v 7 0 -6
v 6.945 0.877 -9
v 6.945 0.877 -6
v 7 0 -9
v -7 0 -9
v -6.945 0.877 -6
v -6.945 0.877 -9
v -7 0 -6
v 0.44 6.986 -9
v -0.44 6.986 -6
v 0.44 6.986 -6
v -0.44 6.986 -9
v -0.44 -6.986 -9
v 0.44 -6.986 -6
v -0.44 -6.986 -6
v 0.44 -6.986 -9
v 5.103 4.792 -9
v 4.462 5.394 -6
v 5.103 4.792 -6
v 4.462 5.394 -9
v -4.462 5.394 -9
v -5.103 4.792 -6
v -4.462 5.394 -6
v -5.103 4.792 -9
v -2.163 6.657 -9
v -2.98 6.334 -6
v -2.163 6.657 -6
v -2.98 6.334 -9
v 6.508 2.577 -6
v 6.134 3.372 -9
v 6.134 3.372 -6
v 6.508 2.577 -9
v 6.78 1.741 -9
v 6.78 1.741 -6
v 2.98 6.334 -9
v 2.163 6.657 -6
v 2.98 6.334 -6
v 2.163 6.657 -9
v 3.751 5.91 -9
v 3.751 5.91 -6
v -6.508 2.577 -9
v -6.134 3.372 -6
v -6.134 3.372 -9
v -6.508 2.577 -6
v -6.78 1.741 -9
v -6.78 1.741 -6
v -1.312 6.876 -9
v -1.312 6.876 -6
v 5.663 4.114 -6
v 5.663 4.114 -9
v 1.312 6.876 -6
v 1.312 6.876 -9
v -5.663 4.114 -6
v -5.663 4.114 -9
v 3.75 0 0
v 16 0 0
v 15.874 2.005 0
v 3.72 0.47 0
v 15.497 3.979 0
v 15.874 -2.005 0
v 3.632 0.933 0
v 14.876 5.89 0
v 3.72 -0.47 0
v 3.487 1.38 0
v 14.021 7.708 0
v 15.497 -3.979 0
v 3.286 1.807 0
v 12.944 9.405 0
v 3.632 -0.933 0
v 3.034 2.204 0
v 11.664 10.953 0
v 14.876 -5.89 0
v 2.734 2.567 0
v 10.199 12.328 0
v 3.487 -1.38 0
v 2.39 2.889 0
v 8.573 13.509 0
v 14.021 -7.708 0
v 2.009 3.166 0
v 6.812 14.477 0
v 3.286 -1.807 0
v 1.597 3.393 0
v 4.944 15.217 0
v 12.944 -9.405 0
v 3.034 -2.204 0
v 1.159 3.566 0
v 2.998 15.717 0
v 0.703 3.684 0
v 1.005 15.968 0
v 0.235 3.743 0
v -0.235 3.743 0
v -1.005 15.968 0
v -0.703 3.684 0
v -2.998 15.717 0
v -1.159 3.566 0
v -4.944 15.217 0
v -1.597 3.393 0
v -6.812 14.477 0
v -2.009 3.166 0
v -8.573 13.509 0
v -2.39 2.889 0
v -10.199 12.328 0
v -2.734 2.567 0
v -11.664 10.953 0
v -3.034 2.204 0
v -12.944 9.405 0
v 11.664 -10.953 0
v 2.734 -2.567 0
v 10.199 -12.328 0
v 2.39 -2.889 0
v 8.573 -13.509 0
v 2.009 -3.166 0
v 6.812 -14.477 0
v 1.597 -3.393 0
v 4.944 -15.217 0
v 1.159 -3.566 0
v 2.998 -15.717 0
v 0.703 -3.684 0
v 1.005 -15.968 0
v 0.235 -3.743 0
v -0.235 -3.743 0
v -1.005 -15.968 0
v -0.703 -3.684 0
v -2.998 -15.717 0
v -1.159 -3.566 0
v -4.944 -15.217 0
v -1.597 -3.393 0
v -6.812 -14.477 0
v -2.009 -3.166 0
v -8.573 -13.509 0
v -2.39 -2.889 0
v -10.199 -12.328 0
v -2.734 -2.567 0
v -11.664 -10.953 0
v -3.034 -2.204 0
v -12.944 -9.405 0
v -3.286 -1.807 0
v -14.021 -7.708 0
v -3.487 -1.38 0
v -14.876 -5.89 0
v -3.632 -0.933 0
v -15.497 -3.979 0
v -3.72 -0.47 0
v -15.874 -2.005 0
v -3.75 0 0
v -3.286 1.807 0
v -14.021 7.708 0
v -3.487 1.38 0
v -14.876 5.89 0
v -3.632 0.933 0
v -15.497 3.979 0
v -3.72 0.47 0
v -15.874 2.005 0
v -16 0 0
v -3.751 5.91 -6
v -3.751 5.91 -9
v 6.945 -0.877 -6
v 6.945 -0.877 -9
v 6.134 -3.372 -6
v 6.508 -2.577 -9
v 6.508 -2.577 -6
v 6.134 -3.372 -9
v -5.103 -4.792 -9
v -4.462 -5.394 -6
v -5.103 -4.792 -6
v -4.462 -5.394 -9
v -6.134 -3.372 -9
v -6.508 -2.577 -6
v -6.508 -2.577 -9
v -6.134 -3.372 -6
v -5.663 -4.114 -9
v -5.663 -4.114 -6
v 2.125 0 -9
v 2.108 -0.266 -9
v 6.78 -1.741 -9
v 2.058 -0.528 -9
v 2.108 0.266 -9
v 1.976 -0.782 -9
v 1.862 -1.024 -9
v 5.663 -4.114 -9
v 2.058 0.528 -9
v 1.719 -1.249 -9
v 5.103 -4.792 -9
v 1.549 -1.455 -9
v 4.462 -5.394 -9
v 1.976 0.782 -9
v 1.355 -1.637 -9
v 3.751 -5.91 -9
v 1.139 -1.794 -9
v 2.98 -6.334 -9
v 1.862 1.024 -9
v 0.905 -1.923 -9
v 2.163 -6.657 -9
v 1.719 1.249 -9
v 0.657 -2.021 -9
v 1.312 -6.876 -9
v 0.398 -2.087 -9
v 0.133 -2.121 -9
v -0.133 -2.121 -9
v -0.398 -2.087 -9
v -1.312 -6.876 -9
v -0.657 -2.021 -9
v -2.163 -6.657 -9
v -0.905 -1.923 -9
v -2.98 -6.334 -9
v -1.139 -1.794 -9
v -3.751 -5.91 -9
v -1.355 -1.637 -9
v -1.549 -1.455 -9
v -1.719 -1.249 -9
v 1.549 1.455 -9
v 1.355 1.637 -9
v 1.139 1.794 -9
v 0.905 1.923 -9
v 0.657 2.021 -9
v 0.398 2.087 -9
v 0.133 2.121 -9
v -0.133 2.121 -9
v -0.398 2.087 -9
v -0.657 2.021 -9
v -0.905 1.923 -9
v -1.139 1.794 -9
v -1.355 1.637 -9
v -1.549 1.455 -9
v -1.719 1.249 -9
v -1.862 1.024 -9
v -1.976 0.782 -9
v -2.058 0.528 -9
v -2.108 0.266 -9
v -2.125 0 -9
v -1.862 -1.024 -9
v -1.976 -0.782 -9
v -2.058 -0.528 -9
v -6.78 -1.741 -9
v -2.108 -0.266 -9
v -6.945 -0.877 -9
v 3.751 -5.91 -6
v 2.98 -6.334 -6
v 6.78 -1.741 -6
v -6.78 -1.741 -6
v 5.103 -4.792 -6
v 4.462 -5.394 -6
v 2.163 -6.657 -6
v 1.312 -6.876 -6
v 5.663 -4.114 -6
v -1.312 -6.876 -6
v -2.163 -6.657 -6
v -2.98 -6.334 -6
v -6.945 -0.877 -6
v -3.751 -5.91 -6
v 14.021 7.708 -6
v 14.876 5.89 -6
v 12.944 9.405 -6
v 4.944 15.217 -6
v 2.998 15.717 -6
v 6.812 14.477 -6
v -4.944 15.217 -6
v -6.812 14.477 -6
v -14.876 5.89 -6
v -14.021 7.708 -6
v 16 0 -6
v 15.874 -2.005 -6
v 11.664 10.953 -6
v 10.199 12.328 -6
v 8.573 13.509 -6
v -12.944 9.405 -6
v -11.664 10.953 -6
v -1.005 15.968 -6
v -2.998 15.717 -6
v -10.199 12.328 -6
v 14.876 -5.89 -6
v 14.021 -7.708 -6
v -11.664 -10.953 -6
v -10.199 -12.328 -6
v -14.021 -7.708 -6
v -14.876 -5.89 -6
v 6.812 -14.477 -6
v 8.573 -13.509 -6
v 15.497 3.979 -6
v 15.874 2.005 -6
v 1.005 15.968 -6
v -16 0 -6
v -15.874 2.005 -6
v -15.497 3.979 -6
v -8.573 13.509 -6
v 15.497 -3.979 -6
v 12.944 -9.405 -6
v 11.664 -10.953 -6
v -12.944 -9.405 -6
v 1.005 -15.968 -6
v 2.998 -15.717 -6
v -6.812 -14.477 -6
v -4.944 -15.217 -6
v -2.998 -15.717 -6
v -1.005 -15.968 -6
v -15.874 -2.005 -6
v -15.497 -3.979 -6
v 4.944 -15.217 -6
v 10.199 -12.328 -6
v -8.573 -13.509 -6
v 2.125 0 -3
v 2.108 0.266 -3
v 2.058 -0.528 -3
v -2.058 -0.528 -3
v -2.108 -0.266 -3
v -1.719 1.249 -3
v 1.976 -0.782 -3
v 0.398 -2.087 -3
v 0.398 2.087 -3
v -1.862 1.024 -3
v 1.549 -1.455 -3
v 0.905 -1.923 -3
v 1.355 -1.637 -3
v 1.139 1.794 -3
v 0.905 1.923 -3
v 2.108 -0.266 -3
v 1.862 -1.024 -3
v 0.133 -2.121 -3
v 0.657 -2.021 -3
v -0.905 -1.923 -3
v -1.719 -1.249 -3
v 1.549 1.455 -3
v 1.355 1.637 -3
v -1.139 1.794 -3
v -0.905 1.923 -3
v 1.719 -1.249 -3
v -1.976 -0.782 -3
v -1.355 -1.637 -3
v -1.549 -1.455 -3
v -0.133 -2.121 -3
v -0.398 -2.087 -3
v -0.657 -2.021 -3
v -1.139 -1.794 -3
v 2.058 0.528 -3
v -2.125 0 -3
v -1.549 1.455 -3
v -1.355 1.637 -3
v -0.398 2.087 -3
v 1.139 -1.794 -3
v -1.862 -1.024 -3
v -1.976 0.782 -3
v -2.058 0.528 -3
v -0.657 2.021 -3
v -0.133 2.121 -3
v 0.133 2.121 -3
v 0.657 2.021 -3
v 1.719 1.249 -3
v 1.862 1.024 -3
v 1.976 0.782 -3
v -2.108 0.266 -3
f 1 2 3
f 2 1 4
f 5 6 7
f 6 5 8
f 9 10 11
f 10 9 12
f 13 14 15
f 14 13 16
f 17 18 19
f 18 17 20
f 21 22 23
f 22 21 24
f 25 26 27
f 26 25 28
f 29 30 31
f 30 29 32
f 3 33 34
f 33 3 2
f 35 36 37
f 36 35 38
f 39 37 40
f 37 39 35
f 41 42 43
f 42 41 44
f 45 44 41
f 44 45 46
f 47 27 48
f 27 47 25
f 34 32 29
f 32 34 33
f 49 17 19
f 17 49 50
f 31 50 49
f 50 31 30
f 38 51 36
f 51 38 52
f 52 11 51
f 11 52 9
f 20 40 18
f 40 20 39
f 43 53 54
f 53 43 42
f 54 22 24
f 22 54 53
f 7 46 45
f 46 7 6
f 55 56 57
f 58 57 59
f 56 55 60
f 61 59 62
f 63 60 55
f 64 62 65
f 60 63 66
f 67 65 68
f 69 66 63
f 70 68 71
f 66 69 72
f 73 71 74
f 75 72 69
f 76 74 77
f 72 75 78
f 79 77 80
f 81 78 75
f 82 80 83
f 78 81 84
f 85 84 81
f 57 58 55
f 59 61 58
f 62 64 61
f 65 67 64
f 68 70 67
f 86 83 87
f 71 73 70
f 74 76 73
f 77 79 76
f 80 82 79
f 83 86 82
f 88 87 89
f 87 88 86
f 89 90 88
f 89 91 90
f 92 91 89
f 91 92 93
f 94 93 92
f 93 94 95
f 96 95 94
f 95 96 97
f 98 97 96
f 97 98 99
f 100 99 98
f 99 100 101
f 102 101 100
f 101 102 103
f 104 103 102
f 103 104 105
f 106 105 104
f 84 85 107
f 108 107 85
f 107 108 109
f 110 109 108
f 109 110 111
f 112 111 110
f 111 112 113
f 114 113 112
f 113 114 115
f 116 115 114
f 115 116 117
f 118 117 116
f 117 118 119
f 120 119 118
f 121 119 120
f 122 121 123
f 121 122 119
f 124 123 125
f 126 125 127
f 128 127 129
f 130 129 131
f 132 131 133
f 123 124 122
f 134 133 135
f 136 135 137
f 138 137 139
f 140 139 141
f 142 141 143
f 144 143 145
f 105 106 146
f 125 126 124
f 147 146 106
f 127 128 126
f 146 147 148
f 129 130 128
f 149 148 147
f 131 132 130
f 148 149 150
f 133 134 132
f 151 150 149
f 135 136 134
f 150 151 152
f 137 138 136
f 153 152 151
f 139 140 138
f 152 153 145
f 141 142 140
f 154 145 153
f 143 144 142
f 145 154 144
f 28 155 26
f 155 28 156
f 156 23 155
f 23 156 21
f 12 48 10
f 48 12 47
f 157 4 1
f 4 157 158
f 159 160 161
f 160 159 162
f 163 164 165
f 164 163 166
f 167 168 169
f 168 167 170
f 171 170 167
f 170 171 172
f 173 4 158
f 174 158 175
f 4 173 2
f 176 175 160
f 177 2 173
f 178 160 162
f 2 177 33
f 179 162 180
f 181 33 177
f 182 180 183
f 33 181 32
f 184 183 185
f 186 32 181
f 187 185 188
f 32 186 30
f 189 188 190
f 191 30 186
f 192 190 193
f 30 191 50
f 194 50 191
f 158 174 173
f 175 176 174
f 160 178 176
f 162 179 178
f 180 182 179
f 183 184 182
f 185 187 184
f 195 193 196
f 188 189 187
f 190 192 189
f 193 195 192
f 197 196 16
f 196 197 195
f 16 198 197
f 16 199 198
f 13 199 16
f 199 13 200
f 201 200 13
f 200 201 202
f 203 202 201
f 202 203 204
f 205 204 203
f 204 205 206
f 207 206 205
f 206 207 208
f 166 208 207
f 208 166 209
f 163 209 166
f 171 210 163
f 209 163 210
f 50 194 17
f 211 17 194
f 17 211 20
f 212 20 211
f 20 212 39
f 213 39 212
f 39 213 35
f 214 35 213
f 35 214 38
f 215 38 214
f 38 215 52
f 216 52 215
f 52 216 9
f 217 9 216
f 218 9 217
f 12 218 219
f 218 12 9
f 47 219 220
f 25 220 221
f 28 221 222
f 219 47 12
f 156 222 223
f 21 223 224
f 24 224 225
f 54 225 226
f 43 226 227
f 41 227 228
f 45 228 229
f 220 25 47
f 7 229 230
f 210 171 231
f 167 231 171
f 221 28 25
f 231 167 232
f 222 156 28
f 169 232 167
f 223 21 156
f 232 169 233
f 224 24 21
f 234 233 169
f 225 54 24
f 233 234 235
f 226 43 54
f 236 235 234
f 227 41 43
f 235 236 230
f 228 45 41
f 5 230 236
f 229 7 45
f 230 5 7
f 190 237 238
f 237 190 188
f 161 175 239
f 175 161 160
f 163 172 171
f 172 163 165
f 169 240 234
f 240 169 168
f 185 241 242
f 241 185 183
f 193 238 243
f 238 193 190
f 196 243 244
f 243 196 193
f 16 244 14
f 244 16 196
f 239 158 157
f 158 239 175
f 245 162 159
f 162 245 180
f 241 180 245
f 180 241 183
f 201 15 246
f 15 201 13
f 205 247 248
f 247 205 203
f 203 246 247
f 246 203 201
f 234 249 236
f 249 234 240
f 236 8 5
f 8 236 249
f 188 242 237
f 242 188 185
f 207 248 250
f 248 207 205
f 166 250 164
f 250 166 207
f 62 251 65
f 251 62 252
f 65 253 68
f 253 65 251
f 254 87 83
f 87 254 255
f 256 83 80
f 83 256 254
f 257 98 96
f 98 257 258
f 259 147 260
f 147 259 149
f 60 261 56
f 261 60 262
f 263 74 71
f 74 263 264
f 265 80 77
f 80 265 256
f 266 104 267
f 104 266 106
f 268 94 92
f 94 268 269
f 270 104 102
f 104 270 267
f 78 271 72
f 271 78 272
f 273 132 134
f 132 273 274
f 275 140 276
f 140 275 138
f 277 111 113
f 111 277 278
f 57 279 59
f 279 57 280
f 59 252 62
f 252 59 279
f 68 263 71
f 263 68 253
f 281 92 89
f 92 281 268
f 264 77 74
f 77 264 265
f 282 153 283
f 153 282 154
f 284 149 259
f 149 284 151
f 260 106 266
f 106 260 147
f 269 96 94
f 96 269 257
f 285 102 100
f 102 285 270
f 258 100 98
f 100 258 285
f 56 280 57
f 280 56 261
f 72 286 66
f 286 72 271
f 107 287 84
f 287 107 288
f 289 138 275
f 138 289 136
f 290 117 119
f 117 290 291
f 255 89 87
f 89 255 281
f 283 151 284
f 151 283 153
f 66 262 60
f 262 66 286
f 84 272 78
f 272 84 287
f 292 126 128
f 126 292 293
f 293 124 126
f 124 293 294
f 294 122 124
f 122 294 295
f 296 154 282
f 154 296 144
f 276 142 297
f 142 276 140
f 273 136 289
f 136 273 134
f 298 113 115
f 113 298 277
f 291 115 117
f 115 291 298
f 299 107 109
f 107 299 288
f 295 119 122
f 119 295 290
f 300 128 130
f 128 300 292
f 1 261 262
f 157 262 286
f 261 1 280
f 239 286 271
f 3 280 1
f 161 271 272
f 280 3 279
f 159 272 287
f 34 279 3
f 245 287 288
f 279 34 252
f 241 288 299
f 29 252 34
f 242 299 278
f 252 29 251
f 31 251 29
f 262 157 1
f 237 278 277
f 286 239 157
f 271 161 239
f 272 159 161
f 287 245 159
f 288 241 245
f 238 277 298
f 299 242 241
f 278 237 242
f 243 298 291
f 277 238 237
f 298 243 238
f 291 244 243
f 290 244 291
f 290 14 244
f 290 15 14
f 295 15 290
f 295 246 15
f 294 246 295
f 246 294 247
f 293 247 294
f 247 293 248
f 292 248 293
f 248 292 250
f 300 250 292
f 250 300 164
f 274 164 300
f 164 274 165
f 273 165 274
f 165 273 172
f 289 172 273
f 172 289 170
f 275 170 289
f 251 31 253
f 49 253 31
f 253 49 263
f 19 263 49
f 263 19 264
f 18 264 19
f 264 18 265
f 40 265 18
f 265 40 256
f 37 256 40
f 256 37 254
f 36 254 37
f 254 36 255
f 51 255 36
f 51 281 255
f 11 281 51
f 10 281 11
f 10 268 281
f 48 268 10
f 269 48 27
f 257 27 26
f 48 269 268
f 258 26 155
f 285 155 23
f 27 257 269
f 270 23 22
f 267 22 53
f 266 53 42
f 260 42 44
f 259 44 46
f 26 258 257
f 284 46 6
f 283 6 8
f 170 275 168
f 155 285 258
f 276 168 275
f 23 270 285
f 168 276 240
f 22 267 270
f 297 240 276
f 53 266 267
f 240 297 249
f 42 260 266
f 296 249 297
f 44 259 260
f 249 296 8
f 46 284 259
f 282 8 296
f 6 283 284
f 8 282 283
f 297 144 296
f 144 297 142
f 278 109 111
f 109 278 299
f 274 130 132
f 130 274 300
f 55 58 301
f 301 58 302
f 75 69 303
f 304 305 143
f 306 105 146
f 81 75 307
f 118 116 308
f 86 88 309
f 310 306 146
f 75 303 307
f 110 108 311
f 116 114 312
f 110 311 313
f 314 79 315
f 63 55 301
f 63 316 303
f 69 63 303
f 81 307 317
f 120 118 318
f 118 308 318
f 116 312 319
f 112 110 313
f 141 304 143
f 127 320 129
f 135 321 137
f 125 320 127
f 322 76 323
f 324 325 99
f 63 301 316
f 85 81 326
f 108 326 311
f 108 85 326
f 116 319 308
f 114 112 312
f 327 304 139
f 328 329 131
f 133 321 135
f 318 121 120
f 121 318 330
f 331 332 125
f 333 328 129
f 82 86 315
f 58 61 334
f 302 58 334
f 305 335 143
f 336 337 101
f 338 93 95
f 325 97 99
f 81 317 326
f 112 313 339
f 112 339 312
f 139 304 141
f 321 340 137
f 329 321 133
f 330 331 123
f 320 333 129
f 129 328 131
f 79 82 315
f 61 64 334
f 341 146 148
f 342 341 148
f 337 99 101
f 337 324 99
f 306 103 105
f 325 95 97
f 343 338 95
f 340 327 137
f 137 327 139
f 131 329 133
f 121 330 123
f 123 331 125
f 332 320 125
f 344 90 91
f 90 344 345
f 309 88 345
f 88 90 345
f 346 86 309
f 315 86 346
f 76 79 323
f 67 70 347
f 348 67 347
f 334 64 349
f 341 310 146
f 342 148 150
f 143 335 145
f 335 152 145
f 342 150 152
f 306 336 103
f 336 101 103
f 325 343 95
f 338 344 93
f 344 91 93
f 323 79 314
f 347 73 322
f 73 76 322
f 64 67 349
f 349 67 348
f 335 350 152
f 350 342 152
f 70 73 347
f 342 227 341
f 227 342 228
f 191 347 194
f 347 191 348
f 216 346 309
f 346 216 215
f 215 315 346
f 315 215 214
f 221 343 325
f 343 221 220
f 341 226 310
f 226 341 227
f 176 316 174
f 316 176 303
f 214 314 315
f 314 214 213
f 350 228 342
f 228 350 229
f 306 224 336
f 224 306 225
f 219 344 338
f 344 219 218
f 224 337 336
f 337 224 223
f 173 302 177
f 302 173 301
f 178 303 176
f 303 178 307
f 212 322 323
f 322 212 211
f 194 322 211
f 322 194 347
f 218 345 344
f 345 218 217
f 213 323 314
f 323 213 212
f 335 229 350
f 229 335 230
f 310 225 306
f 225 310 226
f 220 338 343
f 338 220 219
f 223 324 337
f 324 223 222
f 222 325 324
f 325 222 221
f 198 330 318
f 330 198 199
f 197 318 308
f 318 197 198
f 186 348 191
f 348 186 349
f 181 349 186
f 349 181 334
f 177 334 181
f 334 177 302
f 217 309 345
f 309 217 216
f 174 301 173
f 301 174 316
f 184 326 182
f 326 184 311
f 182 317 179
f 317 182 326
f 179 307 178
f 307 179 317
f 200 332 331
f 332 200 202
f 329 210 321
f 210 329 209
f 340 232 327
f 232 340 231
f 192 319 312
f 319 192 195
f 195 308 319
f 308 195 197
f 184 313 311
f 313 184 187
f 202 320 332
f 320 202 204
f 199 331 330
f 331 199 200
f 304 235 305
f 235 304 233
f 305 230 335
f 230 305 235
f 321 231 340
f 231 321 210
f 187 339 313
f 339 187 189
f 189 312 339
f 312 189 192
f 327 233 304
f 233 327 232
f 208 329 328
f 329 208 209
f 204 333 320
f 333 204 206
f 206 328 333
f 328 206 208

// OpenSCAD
$fn = 50;


difference() {
	union() {
		translate(v = [0, 0, -9.0000000000]) {
			cylinder(h = 9, r = 7.0000000000);
		}
		translate(v = [0, 0, -6.0000000000]) {
			cylinder(h = 6, r = 16.0000000000);
		}
	}
	union() {
		translate(v = [0, 0, 0]) {
			rotate(a = [0, 0, 0]) {
				difference() {
					union() {
						#translate(v = [0, 0, -9.0000000000]) {
							cylinder(h = 9, r = 2.0000000000);
						}
						#translate(v = [0, 0, -3]) {
							cylinder(h = 3, r = 7.0000000000, r1 = 2.1250000000, r2 = 3.7500000000);
						}
						#translate(v = [0, 0, -9.0000000000]) {
							cylinder(h = 9, r = 2.1250000000);
						}
						#translate(v = [0, 0, -9.0000000000]) {
							cylinder(h = 9, r = 2.0000000000);
						}
					}
					union();
				}
			}
		}
	}
}
